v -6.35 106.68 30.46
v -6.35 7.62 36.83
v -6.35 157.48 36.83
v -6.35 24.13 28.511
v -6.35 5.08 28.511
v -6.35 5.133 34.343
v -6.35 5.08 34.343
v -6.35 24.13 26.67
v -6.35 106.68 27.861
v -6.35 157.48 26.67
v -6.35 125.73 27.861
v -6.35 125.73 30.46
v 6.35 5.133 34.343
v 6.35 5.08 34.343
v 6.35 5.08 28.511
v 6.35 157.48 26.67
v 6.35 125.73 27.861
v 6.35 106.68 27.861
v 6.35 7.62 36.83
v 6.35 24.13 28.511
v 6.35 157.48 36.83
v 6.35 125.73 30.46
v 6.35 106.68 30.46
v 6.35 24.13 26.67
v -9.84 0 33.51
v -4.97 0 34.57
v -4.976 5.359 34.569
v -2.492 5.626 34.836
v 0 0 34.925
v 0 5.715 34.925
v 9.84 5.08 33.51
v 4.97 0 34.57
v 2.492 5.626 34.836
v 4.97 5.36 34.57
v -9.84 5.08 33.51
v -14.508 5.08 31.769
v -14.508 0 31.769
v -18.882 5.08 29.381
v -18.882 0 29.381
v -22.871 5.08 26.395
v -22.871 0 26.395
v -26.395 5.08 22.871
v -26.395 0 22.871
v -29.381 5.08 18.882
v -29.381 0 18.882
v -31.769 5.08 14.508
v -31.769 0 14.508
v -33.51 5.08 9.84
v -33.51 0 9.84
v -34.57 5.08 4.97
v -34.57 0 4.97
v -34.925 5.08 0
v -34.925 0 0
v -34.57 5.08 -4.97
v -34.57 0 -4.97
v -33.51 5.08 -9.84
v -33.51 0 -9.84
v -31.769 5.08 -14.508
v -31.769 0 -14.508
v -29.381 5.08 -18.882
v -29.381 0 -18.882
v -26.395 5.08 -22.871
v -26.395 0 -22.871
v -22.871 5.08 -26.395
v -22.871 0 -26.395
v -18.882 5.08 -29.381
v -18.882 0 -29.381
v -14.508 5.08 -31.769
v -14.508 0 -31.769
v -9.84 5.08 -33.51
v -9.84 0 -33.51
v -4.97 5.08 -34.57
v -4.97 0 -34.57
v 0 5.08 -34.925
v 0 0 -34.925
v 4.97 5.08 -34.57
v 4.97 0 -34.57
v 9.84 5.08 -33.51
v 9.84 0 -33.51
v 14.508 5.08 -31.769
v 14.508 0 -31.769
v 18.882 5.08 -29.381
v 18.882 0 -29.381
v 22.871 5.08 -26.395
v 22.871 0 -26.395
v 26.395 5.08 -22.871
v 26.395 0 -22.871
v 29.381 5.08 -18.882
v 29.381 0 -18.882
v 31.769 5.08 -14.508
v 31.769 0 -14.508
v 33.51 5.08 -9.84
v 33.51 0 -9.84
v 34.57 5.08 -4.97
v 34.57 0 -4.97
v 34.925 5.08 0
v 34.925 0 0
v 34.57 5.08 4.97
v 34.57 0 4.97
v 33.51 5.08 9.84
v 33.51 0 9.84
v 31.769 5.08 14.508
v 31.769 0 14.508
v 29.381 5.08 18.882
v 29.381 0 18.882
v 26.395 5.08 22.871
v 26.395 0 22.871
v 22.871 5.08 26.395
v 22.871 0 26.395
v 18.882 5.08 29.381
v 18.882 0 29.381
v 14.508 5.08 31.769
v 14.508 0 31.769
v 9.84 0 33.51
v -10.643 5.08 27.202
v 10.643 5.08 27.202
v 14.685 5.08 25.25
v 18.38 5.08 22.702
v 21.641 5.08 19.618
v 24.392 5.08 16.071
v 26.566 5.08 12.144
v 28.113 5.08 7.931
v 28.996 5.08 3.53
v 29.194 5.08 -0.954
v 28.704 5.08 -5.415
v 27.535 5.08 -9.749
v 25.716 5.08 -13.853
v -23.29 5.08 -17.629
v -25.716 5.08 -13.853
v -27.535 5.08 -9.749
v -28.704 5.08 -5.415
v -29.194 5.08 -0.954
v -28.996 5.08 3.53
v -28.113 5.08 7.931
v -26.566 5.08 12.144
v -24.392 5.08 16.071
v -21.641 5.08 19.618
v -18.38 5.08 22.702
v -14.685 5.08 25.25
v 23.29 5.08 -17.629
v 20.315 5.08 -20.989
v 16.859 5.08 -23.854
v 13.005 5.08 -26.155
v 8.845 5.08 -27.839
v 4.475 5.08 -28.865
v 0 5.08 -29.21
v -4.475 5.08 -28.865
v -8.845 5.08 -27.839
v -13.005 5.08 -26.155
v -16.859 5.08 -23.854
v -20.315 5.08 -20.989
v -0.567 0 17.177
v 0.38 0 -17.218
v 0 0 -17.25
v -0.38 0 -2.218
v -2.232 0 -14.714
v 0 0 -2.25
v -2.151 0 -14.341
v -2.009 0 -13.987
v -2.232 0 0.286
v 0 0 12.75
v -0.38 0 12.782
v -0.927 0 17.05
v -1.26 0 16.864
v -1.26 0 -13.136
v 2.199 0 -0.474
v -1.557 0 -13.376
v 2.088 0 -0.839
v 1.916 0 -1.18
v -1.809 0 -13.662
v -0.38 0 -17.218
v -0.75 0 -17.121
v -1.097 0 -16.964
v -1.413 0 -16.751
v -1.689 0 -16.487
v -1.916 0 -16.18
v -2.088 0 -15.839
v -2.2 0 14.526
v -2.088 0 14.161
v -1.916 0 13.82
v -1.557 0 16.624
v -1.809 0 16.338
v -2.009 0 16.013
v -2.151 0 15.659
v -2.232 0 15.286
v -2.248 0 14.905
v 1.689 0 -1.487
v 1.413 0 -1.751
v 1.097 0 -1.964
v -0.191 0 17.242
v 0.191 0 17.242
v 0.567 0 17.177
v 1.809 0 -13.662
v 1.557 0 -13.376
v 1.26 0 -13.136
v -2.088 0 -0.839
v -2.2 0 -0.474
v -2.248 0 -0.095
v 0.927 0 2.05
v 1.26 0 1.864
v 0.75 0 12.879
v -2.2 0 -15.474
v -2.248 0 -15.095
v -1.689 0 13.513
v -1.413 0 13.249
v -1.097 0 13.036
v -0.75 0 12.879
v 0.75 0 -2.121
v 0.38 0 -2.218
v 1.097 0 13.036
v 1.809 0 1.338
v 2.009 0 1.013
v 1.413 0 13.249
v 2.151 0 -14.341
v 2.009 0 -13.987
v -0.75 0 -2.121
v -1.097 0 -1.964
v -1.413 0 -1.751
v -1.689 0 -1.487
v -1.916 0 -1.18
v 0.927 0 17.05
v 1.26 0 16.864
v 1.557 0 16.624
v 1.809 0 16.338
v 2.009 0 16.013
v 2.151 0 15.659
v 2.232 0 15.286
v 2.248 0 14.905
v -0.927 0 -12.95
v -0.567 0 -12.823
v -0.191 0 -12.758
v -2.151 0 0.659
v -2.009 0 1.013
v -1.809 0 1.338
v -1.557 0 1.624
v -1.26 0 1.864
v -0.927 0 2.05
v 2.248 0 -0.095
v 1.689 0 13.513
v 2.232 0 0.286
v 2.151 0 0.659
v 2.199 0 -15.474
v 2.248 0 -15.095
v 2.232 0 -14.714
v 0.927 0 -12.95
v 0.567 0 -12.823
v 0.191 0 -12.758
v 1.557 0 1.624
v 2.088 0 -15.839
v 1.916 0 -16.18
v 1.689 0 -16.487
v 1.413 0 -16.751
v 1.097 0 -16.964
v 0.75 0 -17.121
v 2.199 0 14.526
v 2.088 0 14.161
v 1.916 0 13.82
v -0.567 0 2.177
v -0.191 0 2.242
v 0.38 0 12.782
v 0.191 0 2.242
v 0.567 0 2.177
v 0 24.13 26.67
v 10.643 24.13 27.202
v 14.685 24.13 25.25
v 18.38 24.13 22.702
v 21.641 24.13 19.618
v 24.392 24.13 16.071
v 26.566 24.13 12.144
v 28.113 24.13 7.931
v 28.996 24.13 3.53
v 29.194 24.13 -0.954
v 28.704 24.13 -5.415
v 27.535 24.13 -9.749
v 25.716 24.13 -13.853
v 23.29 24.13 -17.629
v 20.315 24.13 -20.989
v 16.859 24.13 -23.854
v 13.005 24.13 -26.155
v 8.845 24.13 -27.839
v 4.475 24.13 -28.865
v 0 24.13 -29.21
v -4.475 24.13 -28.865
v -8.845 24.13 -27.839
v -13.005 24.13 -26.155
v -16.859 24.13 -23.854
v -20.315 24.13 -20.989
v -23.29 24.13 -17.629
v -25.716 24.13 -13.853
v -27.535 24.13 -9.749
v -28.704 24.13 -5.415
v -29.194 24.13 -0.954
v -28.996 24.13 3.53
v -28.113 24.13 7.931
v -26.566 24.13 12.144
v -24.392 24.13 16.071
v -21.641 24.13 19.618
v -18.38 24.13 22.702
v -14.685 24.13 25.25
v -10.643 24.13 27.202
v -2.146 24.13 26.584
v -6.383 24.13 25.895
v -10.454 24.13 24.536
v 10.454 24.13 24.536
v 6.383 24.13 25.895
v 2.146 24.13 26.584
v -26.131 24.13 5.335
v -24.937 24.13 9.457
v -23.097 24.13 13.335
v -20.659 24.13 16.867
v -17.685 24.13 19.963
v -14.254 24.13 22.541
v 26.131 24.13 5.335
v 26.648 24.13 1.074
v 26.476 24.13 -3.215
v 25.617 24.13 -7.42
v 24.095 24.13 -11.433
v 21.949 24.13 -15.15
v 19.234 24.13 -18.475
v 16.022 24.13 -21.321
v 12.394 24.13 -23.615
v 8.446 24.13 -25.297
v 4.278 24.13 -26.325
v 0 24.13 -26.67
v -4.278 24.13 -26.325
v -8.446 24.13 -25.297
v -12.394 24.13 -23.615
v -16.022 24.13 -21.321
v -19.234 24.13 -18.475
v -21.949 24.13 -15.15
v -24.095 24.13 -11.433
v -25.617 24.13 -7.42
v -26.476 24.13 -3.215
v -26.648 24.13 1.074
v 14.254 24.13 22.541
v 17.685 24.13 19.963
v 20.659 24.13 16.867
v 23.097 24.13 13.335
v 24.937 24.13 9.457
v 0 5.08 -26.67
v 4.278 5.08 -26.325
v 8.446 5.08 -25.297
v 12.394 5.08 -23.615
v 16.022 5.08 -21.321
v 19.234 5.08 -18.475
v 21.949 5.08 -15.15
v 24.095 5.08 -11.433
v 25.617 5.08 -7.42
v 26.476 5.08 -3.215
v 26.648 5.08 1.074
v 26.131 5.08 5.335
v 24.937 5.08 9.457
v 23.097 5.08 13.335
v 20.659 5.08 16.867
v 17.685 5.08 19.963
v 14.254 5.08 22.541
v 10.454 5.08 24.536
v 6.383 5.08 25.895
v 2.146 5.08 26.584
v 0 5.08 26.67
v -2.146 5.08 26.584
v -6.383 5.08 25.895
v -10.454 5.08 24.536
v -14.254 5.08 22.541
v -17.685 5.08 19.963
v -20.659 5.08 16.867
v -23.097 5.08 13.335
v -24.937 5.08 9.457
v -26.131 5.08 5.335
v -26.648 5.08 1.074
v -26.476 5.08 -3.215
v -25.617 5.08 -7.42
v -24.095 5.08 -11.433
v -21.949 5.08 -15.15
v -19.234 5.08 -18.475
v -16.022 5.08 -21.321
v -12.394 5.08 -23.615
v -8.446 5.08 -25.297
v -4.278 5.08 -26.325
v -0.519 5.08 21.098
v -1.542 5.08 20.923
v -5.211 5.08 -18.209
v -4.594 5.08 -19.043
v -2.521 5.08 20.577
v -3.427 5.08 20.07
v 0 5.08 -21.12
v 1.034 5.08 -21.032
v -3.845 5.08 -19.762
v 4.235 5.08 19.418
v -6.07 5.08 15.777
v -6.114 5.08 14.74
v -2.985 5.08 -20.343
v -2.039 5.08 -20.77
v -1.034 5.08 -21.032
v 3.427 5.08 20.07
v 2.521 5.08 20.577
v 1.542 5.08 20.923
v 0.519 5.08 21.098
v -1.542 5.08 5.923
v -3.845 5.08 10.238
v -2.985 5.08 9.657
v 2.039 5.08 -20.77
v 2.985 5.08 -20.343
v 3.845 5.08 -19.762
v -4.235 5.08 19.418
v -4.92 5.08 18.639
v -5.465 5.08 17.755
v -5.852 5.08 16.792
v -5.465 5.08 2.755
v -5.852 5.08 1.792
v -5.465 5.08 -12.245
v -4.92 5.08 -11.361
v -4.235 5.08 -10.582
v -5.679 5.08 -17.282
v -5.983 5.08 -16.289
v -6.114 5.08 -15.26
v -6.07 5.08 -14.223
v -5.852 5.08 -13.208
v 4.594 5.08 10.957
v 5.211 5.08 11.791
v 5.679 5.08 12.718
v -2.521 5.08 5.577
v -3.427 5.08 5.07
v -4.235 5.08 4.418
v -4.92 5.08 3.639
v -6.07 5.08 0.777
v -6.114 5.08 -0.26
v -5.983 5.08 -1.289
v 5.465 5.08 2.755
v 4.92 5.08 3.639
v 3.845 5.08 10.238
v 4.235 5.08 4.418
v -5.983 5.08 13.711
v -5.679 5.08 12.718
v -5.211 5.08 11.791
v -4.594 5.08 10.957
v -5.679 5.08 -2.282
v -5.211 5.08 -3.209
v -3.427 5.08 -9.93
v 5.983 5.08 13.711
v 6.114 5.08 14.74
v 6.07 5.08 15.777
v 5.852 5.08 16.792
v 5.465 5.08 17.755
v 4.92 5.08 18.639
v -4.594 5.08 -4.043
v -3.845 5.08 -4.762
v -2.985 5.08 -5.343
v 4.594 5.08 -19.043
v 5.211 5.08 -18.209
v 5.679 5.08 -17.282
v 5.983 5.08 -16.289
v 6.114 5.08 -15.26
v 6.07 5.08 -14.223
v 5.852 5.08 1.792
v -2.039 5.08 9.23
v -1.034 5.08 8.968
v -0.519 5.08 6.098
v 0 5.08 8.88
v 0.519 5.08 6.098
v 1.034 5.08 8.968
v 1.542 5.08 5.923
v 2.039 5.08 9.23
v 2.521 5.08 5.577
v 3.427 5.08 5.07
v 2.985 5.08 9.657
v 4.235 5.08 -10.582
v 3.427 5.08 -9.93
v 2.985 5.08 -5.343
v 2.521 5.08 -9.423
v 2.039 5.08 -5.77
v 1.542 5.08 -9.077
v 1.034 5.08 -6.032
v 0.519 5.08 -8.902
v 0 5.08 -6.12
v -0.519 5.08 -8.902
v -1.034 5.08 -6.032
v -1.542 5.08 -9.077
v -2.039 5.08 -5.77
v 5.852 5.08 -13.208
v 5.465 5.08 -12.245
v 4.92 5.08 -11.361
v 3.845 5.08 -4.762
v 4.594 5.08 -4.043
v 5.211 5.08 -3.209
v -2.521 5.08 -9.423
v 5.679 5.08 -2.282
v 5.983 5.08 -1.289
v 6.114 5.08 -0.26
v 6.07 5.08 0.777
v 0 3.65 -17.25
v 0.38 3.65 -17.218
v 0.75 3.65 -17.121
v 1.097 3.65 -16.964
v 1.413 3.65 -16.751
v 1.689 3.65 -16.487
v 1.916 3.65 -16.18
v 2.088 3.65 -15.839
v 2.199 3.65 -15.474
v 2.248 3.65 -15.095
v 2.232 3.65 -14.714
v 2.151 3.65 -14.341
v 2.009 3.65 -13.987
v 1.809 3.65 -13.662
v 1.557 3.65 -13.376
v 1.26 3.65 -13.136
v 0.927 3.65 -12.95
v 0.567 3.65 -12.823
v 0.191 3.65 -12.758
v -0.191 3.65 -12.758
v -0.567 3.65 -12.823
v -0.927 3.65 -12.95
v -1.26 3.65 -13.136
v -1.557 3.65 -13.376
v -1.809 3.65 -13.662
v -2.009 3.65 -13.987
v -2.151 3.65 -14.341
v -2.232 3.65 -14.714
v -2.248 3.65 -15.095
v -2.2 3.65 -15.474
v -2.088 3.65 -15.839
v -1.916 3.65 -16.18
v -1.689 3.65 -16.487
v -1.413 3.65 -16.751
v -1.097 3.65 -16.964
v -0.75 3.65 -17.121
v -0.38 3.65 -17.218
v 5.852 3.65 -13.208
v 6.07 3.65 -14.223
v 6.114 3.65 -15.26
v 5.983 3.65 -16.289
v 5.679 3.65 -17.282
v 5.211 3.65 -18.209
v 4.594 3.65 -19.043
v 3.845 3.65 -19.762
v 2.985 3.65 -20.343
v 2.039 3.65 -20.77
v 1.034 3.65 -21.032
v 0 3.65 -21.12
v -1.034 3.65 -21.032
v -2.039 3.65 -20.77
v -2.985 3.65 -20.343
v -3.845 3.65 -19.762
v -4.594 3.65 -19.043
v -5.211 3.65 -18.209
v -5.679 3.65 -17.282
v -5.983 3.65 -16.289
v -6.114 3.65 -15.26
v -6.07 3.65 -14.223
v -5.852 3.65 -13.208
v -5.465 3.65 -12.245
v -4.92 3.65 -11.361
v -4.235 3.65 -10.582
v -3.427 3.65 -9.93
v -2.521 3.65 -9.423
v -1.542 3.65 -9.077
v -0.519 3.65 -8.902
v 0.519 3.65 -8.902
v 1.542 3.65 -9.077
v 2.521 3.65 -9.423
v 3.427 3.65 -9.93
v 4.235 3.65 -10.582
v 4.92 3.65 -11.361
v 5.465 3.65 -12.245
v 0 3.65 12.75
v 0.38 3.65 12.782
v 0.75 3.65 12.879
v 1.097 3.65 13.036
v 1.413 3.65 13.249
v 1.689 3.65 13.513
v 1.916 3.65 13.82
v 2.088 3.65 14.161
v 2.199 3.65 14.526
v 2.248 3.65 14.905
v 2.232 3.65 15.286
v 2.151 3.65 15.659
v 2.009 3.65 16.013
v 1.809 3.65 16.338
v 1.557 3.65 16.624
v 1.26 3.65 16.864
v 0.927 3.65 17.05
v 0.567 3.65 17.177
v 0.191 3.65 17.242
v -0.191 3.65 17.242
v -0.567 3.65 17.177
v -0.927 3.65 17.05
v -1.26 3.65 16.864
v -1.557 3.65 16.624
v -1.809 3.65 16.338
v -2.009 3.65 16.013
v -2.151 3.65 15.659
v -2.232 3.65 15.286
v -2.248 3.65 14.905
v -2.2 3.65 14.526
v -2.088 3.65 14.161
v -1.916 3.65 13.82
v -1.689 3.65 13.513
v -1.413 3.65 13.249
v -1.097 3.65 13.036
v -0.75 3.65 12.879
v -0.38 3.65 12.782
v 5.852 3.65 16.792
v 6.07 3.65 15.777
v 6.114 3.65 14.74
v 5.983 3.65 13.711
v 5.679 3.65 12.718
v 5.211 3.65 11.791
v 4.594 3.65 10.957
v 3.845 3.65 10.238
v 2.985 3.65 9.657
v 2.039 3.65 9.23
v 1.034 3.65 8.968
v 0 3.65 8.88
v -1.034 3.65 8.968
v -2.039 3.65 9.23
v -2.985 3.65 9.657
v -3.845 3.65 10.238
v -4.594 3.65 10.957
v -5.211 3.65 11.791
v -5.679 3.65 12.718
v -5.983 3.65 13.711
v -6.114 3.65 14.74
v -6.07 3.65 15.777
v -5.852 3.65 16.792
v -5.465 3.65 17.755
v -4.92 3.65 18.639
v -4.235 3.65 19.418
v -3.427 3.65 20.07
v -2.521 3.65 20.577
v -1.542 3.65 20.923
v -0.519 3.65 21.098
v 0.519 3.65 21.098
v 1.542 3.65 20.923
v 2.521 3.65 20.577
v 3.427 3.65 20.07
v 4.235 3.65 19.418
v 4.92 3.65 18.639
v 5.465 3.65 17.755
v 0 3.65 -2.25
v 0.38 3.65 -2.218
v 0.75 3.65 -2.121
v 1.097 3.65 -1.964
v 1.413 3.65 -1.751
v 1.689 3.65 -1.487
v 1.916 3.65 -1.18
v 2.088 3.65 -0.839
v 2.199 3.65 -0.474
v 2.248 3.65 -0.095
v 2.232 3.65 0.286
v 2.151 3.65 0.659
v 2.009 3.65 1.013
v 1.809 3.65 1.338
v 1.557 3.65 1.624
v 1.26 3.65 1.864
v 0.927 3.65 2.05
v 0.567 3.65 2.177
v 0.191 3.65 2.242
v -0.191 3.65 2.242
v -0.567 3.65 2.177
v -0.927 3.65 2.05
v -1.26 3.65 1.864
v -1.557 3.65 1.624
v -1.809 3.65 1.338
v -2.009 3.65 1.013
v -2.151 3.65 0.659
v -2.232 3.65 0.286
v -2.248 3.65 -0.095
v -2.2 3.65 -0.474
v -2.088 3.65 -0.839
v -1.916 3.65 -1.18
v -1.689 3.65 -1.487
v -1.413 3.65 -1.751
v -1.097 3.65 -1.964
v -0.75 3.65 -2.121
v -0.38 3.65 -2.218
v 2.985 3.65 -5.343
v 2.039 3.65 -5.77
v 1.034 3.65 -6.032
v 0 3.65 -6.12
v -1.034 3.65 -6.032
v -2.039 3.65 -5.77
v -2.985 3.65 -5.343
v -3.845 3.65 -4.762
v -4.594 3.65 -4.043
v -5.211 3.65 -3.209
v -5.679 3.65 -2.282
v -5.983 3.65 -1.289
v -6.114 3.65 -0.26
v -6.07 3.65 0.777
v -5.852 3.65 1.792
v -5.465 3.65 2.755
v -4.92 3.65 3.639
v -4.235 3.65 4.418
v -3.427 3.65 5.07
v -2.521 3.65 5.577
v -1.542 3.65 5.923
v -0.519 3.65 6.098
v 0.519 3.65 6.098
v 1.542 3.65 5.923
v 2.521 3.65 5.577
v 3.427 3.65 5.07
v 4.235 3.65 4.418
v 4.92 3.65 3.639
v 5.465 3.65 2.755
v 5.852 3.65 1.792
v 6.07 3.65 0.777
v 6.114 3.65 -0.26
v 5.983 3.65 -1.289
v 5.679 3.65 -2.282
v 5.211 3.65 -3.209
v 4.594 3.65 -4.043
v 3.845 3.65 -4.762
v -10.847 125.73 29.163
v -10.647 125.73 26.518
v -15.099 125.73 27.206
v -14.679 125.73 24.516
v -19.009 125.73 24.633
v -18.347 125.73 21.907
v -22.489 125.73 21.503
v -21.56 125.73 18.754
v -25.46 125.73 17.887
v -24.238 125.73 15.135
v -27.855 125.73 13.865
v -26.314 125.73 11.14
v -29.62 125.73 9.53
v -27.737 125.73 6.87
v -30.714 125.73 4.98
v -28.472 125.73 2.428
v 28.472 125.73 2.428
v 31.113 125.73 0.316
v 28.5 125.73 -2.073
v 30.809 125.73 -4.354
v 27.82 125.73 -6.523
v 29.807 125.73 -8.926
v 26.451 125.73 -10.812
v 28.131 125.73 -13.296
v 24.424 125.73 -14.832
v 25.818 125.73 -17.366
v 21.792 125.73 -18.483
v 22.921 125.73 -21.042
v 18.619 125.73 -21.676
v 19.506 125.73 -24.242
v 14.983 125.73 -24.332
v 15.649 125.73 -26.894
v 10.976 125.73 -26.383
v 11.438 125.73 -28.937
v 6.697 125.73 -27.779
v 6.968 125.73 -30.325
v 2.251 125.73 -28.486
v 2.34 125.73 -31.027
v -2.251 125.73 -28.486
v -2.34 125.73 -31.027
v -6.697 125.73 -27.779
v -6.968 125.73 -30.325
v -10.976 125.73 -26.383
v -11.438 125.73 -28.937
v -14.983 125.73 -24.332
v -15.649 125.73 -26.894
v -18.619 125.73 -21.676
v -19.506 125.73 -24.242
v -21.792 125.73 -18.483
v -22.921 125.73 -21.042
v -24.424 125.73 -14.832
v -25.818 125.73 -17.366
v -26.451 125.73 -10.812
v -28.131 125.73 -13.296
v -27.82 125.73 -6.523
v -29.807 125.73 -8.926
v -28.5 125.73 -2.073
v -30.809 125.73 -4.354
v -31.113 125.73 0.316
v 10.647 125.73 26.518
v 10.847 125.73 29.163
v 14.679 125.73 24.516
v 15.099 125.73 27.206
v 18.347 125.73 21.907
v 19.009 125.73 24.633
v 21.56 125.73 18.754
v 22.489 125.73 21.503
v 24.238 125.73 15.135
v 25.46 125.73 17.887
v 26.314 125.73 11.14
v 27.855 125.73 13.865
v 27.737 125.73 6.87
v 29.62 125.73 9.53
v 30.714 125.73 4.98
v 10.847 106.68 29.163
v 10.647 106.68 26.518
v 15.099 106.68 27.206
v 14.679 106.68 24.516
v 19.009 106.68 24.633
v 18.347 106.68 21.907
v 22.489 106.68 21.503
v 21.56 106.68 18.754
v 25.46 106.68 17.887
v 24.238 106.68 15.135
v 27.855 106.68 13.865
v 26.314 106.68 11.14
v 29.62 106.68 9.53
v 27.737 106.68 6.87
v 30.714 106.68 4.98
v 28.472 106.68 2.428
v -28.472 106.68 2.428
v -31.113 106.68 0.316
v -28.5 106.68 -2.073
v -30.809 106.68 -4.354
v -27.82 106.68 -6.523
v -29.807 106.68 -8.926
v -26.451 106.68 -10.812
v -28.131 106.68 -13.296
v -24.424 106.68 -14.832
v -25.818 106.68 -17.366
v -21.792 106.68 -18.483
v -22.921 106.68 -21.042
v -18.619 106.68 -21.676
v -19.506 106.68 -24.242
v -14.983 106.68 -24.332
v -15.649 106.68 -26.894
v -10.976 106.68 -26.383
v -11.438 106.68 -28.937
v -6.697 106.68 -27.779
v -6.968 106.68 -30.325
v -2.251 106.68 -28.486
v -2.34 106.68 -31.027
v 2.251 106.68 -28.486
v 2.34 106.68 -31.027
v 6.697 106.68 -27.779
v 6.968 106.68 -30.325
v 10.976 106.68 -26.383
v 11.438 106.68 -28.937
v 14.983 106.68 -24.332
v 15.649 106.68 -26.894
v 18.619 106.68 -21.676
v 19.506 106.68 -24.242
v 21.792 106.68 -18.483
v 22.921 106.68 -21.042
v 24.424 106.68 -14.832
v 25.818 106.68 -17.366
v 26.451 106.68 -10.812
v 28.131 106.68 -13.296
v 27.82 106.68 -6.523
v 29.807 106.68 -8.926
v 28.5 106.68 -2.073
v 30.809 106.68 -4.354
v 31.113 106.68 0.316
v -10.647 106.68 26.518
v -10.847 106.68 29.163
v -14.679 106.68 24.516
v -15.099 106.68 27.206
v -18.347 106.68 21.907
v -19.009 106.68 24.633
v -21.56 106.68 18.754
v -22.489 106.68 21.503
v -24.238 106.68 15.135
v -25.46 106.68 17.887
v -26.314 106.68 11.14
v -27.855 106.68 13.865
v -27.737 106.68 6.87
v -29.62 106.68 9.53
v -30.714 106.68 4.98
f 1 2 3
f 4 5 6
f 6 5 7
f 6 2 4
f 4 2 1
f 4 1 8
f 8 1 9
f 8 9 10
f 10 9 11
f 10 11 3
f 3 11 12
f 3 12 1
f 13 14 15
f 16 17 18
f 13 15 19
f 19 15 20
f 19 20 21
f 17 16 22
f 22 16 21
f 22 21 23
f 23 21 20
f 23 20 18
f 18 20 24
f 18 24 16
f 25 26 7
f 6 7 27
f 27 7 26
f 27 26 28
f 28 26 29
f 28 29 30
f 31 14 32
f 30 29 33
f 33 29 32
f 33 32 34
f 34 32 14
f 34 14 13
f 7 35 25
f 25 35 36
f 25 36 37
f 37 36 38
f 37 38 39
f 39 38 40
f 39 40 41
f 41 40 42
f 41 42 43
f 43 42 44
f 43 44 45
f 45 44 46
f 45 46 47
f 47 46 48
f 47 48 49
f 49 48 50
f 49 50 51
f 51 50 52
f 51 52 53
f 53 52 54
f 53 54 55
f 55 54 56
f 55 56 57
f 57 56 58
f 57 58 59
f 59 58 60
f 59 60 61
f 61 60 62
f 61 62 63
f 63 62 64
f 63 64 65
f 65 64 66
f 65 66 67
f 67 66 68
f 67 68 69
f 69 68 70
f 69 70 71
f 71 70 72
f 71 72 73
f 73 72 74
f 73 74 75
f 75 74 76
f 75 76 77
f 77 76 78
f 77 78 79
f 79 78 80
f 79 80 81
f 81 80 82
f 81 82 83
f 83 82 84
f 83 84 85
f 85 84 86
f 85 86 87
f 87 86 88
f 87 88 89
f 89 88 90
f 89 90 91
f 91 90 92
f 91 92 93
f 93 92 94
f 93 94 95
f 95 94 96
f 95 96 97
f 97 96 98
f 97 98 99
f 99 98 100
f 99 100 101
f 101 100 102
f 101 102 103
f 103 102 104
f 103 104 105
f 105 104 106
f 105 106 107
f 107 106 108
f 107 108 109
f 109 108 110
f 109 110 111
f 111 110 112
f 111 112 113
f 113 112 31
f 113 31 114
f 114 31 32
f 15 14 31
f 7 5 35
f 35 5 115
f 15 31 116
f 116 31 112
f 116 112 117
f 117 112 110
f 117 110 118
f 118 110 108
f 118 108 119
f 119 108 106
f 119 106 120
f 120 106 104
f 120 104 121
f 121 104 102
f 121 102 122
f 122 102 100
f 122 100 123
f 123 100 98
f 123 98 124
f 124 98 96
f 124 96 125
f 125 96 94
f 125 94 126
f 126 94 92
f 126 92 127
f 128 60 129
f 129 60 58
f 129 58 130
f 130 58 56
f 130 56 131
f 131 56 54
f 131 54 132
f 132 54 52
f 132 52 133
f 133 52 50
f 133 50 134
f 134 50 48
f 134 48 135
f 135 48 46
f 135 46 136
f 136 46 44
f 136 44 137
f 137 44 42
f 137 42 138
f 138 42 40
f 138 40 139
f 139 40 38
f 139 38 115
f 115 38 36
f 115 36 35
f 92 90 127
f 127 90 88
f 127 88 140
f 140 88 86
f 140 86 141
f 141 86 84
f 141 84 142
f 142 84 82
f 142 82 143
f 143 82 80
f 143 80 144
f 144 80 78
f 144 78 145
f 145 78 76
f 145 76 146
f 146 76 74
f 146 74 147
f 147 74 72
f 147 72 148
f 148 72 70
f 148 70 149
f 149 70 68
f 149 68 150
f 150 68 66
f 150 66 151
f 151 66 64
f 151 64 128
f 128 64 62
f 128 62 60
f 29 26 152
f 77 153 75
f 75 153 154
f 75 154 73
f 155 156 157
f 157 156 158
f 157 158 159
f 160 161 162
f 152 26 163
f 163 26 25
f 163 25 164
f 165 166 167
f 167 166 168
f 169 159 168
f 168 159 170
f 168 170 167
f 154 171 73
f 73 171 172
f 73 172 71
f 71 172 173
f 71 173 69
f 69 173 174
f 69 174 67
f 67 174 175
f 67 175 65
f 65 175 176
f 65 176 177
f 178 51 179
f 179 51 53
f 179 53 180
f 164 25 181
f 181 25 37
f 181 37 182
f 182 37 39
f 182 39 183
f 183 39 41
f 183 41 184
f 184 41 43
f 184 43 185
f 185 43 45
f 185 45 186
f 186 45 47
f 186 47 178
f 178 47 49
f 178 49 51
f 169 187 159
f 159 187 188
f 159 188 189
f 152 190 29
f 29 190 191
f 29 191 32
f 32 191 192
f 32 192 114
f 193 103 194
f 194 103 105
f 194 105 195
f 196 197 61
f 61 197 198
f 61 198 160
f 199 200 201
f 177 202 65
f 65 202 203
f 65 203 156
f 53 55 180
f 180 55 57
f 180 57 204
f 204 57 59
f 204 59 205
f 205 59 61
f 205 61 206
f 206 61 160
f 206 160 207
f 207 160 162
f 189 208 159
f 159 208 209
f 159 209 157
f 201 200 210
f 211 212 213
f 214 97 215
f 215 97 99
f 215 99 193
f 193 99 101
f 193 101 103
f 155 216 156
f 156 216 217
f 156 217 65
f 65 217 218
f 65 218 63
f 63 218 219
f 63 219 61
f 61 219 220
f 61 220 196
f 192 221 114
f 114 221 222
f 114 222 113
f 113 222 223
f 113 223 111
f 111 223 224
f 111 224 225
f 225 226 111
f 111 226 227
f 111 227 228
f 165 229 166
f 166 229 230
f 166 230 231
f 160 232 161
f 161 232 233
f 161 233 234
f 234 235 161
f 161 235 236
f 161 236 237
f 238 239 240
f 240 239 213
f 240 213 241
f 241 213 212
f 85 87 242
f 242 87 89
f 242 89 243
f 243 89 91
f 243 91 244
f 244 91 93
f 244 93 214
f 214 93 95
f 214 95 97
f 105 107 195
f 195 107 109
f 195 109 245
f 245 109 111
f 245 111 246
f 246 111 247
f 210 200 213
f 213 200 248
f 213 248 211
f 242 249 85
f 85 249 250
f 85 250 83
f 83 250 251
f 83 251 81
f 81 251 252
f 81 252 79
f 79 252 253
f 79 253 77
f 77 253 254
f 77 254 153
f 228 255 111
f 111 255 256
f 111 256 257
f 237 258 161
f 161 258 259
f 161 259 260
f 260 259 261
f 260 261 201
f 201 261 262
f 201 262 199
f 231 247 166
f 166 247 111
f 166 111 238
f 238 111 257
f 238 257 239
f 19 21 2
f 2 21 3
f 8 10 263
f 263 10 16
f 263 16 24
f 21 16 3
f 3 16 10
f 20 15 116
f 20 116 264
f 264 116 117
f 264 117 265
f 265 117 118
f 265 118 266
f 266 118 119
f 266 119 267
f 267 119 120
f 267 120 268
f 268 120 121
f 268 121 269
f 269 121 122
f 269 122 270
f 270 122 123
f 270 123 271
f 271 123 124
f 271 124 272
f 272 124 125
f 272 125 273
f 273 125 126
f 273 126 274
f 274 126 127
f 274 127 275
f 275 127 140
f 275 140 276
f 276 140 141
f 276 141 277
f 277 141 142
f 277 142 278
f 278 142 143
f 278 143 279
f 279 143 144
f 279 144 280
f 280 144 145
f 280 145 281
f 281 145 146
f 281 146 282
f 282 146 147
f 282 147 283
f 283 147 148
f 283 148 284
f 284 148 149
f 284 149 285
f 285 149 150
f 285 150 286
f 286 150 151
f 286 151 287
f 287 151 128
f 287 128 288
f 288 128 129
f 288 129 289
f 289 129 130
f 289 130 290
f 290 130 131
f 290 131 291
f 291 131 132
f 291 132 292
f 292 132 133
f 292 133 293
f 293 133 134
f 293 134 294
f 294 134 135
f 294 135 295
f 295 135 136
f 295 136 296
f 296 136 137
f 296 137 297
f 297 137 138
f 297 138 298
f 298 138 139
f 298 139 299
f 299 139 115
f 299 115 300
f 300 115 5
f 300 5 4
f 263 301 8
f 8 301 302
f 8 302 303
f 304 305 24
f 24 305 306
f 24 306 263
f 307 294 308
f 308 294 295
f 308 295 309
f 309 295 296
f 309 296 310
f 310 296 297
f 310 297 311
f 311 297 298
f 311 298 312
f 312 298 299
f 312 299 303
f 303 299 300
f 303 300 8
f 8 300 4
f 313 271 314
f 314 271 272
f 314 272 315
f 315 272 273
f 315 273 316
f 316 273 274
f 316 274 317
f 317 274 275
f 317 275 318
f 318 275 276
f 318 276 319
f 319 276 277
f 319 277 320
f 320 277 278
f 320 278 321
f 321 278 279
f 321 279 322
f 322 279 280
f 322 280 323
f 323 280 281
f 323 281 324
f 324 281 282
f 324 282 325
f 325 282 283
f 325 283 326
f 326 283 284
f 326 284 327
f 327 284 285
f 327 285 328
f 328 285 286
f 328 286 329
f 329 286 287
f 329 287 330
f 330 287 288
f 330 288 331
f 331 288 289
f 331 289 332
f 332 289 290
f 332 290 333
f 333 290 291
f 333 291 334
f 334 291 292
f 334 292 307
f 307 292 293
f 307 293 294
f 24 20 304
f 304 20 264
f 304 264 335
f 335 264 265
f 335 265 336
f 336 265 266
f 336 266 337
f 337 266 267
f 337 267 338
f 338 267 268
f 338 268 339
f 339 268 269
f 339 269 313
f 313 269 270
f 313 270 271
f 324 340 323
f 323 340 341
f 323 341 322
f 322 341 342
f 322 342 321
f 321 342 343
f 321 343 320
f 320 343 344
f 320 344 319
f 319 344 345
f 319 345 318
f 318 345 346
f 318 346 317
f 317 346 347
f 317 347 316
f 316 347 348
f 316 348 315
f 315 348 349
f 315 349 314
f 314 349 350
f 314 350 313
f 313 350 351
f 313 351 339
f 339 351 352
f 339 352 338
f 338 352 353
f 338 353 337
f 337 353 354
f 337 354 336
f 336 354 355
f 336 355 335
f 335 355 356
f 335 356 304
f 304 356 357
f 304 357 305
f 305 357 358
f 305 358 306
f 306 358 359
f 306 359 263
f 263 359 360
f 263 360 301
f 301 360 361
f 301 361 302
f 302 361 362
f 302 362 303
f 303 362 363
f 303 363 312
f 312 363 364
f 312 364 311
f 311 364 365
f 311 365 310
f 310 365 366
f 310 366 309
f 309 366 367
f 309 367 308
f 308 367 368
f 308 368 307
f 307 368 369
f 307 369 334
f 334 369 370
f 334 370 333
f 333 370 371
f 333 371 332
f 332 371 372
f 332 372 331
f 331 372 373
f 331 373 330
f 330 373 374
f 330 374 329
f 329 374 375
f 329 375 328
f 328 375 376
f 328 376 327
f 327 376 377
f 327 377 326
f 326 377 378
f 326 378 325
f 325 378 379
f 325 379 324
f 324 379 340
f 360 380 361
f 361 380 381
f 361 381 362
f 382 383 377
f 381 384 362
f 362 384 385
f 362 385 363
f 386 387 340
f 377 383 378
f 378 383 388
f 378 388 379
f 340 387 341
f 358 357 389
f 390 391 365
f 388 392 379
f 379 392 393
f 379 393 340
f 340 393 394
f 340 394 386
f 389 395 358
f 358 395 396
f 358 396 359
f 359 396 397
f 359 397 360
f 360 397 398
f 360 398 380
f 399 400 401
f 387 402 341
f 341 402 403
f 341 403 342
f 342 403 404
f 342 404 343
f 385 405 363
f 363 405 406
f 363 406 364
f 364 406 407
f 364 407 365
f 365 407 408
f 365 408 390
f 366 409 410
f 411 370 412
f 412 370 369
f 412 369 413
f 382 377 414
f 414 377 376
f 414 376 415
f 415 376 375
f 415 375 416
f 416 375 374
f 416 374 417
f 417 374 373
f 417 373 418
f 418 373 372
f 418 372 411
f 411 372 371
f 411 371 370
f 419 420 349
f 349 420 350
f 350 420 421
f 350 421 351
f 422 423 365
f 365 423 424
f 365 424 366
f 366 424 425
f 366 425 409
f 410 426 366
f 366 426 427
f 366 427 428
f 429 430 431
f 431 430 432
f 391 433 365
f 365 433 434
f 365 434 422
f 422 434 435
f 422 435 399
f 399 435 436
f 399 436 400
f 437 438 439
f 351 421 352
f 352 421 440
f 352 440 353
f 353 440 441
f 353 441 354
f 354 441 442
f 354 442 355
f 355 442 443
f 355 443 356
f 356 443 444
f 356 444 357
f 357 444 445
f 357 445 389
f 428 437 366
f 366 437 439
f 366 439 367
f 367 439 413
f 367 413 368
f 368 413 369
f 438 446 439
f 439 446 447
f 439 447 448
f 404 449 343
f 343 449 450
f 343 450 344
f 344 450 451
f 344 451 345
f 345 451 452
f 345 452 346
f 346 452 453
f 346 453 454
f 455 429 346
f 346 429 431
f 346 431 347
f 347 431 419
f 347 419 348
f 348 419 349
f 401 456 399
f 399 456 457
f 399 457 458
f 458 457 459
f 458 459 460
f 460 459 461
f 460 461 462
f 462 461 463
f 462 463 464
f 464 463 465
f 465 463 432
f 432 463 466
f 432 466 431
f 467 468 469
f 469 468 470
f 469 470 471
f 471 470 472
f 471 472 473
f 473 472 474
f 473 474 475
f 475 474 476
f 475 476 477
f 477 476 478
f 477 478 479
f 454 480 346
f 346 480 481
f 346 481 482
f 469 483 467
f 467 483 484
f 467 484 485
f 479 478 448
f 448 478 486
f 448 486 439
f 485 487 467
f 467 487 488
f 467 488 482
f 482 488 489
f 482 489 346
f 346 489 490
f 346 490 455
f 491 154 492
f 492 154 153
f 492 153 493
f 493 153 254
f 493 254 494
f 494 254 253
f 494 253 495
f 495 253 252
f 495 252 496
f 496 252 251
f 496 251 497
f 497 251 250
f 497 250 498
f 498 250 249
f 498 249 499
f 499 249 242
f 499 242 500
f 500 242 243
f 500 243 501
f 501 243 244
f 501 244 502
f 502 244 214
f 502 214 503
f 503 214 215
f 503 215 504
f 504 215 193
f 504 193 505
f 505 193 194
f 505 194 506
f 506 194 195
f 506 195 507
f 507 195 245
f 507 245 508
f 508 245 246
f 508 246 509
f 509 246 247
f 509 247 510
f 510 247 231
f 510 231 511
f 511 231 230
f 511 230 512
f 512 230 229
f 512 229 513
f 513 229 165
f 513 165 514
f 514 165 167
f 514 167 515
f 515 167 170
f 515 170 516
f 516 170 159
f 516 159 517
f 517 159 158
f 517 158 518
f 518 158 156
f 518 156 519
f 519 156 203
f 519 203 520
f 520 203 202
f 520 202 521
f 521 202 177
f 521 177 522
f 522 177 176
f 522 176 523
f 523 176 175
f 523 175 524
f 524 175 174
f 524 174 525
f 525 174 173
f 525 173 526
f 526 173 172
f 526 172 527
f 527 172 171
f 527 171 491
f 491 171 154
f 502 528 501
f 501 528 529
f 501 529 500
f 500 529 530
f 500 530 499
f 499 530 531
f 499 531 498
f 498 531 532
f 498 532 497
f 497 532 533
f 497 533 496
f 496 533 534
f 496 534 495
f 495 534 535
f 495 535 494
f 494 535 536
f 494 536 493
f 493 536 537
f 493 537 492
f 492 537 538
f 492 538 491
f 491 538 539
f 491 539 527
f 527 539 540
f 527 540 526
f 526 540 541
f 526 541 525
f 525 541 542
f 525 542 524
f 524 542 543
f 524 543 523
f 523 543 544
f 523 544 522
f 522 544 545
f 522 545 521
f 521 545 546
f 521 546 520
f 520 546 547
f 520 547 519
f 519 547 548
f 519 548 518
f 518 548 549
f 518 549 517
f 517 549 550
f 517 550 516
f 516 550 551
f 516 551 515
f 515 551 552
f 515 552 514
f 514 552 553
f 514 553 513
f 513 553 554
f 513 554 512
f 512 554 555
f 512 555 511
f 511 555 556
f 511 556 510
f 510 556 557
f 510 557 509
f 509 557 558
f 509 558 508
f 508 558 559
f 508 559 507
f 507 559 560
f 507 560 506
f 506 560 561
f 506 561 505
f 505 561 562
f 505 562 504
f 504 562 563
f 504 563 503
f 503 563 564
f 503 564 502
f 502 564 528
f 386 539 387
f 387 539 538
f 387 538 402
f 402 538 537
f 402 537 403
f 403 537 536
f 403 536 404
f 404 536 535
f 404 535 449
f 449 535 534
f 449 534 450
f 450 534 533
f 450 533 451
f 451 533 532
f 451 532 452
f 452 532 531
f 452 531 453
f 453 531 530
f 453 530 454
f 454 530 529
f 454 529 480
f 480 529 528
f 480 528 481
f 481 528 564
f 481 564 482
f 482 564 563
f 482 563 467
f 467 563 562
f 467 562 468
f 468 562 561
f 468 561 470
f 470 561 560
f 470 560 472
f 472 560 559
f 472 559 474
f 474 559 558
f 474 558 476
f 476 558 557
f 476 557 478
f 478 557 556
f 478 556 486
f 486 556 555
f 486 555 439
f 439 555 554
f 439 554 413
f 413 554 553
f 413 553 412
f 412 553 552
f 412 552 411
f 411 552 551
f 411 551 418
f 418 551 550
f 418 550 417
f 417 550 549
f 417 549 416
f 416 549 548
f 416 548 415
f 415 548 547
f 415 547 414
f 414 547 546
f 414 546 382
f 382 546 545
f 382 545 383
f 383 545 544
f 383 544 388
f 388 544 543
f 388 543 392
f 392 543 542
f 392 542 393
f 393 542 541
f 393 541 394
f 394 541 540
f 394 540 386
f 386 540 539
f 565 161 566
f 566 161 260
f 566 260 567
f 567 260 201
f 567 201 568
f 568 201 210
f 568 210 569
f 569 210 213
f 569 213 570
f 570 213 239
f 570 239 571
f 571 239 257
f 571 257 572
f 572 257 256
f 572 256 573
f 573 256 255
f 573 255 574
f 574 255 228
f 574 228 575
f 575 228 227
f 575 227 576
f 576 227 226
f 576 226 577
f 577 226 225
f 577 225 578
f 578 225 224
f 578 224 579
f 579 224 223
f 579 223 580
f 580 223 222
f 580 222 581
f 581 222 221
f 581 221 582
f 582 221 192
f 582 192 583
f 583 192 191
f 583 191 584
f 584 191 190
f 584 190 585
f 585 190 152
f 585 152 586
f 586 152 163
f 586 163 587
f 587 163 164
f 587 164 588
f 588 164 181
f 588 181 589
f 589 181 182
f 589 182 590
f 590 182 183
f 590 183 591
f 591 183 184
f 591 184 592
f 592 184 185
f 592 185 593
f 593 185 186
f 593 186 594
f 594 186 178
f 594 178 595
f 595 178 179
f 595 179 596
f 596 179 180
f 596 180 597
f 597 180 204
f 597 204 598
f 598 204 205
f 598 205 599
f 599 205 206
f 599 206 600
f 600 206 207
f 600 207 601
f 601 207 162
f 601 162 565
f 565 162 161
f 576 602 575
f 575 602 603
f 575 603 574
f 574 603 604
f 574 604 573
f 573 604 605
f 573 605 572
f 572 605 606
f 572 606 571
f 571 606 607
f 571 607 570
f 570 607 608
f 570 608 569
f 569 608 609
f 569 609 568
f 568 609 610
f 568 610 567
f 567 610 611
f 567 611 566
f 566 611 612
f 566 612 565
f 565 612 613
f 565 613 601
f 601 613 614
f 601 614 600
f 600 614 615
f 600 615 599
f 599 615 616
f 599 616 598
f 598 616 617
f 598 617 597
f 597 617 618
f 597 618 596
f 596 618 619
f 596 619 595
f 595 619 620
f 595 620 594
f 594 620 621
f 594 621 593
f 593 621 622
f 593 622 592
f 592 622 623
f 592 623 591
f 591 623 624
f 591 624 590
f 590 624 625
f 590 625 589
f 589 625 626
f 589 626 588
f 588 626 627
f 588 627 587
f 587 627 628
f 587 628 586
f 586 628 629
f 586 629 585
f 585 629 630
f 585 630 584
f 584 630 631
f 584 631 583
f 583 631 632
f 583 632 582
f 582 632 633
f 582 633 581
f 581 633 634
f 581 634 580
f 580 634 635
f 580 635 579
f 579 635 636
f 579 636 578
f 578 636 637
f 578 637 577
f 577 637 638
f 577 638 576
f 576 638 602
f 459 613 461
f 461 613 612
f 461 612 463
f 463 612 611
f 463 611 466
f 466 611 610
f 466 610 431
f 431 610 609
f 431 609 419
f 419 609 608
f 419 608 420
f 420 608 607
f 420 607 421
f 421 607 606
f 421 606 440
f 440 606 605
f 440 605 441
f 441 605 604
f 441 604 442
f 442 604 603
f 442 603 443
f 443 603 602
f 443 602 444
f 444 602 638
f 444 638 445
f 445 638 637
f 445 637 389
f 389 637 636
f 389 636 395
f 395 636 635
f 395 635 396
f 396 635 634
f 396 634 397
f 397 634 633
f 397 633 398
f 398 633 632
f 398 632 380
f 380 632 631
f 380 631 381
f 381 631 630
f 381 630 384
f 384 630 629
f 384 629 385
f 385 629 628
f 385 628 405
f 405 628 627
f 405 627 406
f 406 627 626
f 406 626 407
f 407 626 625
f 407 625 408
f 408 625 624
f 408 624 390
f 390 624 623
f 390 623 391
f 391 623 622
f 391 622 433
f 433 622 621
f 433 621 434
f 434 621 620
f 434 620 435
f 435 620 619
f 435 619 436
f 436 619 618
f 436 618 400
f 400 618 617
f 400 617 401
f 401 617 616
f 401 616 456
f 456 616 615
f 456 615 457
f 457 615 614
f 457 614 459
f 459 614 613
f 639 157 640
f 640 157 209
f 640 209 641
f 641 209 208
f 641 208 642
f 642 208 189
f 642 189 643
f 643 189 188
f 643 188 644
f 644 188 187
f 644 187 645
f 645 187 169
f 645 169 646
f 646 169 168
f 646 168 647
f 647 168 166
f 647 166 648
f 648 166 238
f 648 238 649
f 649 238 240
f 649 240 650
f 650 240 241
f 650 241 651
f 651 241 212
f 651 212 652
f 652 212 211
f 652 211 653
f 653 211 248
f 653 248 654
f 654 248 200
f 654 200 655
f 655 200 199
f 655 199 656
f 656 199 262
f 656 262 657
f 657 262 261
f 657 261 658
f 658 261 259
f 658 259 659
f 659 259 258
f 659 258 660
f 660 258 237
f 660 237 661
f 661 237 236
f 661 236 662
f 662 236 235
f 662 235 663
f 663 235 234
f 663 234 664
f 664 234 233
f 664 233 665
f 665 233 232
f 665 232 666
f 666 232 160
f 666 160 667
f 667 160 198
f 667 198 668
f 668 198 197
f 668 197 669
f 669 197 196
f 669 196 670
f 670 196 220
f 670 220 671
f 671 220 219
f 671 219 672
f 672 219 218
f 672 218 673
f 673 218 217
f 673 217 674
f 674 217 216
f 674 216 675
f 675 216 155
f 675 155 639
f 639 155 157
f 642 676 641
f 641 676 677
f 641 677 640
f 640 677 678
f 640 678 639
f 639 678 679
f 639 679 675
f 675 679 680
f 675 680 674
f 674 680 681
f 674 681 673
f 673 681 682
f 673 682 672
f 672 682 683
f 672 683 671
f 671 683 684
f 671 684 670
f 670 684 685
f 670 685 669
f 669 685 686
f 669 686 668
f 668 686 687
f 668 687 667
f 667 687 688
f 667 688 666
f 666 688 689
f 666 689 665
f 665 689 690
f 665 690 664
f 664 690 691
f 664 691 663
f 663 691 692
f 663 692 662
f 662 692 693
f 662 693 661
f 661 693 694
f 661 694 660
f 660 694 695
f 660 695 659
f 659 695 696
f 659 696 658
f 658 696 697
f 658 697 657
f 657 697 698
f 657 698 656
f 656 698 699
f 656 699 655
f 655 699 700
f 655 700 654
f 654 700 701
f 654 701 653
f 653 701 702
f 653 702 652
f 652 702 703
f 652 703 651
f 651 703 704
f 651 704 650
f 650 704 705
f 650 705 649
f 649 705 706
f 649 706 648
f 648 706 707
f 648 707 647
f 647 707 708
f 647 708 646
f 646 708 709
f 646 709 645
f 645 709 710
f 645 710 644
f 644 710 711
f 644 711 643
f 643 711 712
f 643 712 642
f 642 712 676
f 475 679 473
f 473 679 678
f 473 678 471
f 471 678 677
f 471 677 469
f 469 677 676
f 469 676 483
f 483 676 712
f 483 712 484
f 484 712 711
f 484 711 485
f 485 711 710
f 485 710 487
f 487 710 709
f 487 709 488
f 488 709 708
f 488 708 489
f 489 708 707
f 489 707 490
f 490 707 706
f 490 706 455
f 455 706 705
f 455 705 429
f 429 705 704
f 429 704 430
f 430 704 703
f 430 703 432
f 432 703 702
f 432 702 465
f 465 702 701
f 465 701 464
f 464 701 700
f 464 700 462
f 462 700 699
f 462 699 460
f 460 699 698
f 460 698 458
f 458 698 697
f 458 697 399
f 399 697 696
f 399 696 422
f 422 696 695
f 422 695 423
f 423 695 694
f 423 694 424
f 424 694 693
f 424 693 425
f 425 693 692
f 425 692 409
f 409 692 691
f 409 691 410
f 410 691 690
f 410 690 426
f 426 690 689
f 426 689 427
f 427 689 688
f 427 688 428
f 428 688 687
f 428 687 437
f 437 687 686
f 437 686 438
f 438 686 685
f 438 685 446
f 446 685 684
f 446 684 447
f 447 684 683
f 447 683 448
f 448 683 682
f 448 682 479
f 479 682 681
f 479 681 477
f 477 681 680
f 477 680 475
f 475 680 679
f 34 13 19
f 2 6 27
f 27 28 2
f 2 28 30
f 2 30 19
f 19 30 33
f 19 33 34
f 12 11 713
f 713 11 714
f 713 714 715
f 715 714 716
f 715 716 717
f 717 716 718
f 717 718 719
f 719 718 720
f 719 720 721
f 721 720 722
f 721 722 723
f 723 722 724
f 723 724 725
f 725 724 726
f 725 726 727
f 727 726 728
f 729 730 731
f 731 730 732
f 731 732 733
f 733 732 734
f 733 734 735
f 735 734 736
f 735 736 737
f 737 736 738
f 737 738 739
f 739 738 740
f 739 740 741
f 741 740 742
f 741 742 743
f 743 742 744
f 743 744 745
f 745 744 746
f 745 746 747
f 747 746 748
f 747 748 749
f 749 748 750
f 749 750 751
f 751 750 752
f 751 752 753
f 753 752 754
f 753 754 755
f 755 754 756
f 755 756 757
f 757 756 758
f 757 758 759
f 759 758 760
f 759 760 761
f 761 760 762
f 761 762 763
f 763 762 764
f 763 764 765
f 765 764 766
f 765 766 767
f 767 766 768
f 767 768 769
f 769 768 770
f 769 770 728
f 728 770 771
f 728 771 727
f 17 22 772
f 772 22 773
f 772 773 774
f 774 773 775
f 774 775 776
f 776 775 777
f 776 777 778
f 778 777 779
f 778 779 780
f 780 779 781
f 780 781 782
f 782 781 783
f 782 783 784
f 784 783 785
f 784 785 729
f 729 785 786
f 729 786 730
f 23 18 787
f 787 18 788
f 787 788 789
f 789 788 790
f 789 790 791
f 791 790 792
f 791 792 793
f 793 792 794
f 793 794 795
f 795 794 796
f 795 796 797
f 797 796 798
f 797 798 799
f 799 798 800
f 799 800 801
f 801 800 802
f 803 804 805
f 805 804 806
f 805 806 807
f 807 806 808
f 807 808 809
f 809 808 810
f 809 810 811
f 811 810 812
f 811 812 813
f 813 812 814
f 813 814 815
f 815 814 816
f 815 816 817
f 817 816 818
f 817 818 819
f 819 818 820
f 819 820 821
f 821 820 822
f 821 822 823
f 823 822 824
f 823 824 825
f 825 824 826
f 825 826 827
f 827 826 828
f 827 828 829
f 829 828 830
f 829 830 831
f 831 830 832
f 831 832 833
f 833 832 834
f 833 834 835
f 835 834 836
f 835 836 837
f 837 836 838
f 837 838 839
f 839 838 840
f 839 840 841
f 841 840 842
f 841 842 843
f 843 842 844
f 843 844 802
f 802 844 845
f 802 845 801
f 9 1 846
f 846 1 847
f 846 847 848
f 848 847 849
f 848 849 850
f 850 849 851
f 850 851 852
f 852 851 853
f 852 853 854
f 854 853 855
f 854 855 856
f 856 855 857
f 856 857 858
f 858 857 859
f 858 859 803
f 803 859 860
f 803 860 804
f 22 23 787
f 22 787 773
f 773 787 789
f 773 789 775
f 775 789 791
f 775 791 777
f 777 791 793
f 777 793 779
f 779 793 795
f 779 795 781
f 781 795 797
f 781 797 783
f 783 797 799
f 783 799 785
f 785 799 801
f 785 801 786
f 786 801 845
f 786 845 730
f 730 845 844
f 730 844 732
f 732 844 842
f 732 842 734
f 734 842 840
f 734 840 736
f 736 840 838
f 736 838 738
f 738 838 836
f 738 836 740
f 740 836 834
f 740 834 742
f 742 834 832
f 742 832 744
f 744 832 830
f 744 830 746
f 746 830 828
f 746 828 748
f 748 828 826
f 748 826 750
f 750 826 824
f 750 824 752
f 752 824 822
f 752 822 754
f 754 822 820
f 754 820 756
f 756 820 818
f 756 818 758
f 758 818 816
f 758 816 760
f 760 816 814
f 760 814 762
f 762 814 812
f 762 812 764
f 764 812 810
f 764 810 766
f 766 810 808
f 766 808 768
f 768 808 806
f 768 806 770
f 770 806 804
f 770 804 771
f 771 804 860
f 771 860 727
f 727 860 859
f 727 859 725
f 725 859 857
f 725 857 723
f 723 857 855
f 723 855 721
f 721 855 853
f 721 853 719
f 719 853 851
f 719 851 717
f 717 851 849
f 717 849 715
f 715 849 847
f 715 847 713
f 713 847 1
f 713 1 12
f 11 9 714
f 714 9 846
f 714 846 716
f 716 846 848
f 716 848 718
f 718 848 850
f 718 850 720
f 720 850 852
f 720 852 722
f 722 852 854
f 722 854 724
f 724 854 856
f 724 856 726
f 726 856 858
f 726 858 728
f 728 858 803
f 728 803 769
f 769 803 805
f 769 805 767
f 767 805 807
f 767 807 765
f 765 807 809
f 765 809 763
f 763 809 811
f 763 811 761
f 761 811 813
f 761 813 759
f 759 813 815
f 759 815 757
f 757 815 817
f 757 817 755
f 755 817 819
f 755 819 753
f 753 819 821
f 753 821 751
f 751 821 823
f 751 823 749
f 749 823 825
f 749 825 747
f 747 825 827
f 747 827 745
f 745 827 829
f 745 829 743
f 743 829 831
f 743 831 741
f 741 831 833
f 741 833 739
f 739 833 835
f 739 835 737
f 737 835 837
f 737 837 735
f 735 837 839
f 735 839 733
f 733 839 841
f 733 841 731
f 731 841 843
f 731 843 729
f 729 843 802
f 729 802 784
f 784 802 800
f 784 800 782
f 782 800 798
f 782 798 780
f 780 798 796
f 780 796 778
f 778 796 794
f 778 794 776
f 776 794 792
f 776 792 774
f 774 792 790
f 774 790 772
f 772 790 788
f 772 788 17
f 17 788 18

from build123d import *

# Parameters (mm, degrees)
SKETCH1_R                 = 34.925
BOSS_EXTRUDE1_DEPTH       = 5.08
SKETCH3_W                 = 12.7
SKETCH3_H                 = 10.16
BOSS_EXTRUDE2_DEPTH       = 152.4
SKETCH4_R                 = 29.21
SKETCH4_R_2               = 26.67
EXTRUDE_THIN1_DEPTH       = 19.05
ADVANCEDHOLE3_START       = 3.65
ADVANCEDHOLE3_OUTLINE_R   = 6.12
ADVANCEDHOLE3_DEPTH       = 1.43
ADVANCEDHOLE3_2_OUTLINE_R = 2.25
ADVANCEDHOLE3_2_DEPTH     = 3.65
CHAMFER1_SIZE             = 2.54
SKETCH14_R                = 31.115
SKETCH14_R_2              = 28.575
EXTRUDE_THIN3_DEPTH       = 19.05


# Read off the part's stored shape, not the designer's step: AdvancedHole3
with BuildPart() as part:
    # Sketch1 → Boss-Extrude1 (new body)
    with BuildSketch(Plane(origin=(0, 0, 0), x_dir=(1, 0, 0), z_dir=(0, 1, 0))):
        with Locations(Location((0, 0, 0), (0, 0, 270))):
            Circle(SKETCH1_R)
    extrude(amount=BOSS_EXTRUDE1_DEPTH)

    # Sketch3 → Boss-Extrude2 (add)
    with BuildSketch(Plane(origin=(0, 5.08, 0), x_dir=(1, 0, 0), z_dir=(0, 1, 0))):
        with Locations((0, -31.75)):
            Rectangle(SKETCH3_W, SKETCH3_H)
    extrude(amount=BOSS_EXTRUDE2_DEPTH)

    # Sketch4 → Extrude-Thin1 (add)
    with BuildSketch(Plane(origin=(0, 5.08, 0), x_dir=(1, 0, 0), z_dir=(0, 1, 0))):
        Circle(SKETCH4_R)
        Circle(SKETCH4_R_2, mode=Mode.SUBTRACT)
    extrude(amount=EXTRUDE_THIN1_DEPTH)

    # AdvancedHole3 outline → AdvancedHole3 (cut)
    with BuildSketch(Plane(origin=(0, 0, 0), x_dir=(1, 0, 0), z_dir=(0, 1, 0)).offset(ADVANCEDHOLE3_START)):
        with Locations((0, 15)):
            Circle(ADVANCEDHOLE3_OUTLINE_R)
        with Locations((0, -15)):
            Circle(ADVANCEDHOLE3_OUTLINE_R)
        Circle(ADVANCEDHOLE3_OUTLINE_R)
    extrude(amount=ADVANCEDHOLE3_DEPTH, mode=Mode.SUBTRACT)

    # AdvancedHole3 2 outline → AdvancedHole3 2 (cut)
    with BuildSketch(Plane(origin=(0, 0, 0), x_dir=(1, 0, 0), z_dir=(0, 1, 0))):
        with Locations((0, 15)):
            Circle(ADVANCEDHOLE3_2_OUTLINE_R)
        with Locations((0, -15)):
            Circle(ADVANCEDHOLE3_2_OUTLINE_R)
        Circle(ADVANCEDHOLE3_2_OUTLINE_R)
    extrude(amount=ADVANCEDHOLE3_2_DEPTH, mode=Mode.SUBTRACT)

    # Chamfer1
    # the kernel refuses this chamfer: 2.54 mm, written as the material it takes off along each edge
    with BuildSketch(Plane(origin=(12.882074789, 5.08, 36.83), x_dir=(0, -0.02749587661058625, -0.9996219169112968), z_dir=(-1, 0, 0))) as chamfer1_piece_1_section:
        Polygon((CHAMFER1_SIZE * 0.999621916911, -CHAMFER1_SIZE * 0.0274958766106), (-CHAMFER1_SIZE * 0.0274958766106, -CHAMFER1_SIZE * 0.999621916911), (0, 0), align=None)
    chamfer1_piece_1 = extrude(amount=25.764149579, mode=Mode.PRIVATE)
    chamfer1_piece_1 = chamfer1_piece_1 - Plane(origin=(0, 5.934504944, 0), x_dir=(0, 0, 1), z_dir=(0, -1, 0)) * Cylinder(34.925, 62, mode=Mode.PRIVATE)
    add(chamfer1_piece_1, mode=Mode.SUBTRACT)

    # Sketch14 → Extrude-Thin3 (add)
    with BuildSketch(Plane.ZX.offset(106.68)):
        Circle(SKETCH14_R)
        Circle(SKETCH14_R_2, mode=Mode.SUBTRACT)
    extrude(amount=EXTRUDE_THIN3_DEPTH)


solid = part.part
